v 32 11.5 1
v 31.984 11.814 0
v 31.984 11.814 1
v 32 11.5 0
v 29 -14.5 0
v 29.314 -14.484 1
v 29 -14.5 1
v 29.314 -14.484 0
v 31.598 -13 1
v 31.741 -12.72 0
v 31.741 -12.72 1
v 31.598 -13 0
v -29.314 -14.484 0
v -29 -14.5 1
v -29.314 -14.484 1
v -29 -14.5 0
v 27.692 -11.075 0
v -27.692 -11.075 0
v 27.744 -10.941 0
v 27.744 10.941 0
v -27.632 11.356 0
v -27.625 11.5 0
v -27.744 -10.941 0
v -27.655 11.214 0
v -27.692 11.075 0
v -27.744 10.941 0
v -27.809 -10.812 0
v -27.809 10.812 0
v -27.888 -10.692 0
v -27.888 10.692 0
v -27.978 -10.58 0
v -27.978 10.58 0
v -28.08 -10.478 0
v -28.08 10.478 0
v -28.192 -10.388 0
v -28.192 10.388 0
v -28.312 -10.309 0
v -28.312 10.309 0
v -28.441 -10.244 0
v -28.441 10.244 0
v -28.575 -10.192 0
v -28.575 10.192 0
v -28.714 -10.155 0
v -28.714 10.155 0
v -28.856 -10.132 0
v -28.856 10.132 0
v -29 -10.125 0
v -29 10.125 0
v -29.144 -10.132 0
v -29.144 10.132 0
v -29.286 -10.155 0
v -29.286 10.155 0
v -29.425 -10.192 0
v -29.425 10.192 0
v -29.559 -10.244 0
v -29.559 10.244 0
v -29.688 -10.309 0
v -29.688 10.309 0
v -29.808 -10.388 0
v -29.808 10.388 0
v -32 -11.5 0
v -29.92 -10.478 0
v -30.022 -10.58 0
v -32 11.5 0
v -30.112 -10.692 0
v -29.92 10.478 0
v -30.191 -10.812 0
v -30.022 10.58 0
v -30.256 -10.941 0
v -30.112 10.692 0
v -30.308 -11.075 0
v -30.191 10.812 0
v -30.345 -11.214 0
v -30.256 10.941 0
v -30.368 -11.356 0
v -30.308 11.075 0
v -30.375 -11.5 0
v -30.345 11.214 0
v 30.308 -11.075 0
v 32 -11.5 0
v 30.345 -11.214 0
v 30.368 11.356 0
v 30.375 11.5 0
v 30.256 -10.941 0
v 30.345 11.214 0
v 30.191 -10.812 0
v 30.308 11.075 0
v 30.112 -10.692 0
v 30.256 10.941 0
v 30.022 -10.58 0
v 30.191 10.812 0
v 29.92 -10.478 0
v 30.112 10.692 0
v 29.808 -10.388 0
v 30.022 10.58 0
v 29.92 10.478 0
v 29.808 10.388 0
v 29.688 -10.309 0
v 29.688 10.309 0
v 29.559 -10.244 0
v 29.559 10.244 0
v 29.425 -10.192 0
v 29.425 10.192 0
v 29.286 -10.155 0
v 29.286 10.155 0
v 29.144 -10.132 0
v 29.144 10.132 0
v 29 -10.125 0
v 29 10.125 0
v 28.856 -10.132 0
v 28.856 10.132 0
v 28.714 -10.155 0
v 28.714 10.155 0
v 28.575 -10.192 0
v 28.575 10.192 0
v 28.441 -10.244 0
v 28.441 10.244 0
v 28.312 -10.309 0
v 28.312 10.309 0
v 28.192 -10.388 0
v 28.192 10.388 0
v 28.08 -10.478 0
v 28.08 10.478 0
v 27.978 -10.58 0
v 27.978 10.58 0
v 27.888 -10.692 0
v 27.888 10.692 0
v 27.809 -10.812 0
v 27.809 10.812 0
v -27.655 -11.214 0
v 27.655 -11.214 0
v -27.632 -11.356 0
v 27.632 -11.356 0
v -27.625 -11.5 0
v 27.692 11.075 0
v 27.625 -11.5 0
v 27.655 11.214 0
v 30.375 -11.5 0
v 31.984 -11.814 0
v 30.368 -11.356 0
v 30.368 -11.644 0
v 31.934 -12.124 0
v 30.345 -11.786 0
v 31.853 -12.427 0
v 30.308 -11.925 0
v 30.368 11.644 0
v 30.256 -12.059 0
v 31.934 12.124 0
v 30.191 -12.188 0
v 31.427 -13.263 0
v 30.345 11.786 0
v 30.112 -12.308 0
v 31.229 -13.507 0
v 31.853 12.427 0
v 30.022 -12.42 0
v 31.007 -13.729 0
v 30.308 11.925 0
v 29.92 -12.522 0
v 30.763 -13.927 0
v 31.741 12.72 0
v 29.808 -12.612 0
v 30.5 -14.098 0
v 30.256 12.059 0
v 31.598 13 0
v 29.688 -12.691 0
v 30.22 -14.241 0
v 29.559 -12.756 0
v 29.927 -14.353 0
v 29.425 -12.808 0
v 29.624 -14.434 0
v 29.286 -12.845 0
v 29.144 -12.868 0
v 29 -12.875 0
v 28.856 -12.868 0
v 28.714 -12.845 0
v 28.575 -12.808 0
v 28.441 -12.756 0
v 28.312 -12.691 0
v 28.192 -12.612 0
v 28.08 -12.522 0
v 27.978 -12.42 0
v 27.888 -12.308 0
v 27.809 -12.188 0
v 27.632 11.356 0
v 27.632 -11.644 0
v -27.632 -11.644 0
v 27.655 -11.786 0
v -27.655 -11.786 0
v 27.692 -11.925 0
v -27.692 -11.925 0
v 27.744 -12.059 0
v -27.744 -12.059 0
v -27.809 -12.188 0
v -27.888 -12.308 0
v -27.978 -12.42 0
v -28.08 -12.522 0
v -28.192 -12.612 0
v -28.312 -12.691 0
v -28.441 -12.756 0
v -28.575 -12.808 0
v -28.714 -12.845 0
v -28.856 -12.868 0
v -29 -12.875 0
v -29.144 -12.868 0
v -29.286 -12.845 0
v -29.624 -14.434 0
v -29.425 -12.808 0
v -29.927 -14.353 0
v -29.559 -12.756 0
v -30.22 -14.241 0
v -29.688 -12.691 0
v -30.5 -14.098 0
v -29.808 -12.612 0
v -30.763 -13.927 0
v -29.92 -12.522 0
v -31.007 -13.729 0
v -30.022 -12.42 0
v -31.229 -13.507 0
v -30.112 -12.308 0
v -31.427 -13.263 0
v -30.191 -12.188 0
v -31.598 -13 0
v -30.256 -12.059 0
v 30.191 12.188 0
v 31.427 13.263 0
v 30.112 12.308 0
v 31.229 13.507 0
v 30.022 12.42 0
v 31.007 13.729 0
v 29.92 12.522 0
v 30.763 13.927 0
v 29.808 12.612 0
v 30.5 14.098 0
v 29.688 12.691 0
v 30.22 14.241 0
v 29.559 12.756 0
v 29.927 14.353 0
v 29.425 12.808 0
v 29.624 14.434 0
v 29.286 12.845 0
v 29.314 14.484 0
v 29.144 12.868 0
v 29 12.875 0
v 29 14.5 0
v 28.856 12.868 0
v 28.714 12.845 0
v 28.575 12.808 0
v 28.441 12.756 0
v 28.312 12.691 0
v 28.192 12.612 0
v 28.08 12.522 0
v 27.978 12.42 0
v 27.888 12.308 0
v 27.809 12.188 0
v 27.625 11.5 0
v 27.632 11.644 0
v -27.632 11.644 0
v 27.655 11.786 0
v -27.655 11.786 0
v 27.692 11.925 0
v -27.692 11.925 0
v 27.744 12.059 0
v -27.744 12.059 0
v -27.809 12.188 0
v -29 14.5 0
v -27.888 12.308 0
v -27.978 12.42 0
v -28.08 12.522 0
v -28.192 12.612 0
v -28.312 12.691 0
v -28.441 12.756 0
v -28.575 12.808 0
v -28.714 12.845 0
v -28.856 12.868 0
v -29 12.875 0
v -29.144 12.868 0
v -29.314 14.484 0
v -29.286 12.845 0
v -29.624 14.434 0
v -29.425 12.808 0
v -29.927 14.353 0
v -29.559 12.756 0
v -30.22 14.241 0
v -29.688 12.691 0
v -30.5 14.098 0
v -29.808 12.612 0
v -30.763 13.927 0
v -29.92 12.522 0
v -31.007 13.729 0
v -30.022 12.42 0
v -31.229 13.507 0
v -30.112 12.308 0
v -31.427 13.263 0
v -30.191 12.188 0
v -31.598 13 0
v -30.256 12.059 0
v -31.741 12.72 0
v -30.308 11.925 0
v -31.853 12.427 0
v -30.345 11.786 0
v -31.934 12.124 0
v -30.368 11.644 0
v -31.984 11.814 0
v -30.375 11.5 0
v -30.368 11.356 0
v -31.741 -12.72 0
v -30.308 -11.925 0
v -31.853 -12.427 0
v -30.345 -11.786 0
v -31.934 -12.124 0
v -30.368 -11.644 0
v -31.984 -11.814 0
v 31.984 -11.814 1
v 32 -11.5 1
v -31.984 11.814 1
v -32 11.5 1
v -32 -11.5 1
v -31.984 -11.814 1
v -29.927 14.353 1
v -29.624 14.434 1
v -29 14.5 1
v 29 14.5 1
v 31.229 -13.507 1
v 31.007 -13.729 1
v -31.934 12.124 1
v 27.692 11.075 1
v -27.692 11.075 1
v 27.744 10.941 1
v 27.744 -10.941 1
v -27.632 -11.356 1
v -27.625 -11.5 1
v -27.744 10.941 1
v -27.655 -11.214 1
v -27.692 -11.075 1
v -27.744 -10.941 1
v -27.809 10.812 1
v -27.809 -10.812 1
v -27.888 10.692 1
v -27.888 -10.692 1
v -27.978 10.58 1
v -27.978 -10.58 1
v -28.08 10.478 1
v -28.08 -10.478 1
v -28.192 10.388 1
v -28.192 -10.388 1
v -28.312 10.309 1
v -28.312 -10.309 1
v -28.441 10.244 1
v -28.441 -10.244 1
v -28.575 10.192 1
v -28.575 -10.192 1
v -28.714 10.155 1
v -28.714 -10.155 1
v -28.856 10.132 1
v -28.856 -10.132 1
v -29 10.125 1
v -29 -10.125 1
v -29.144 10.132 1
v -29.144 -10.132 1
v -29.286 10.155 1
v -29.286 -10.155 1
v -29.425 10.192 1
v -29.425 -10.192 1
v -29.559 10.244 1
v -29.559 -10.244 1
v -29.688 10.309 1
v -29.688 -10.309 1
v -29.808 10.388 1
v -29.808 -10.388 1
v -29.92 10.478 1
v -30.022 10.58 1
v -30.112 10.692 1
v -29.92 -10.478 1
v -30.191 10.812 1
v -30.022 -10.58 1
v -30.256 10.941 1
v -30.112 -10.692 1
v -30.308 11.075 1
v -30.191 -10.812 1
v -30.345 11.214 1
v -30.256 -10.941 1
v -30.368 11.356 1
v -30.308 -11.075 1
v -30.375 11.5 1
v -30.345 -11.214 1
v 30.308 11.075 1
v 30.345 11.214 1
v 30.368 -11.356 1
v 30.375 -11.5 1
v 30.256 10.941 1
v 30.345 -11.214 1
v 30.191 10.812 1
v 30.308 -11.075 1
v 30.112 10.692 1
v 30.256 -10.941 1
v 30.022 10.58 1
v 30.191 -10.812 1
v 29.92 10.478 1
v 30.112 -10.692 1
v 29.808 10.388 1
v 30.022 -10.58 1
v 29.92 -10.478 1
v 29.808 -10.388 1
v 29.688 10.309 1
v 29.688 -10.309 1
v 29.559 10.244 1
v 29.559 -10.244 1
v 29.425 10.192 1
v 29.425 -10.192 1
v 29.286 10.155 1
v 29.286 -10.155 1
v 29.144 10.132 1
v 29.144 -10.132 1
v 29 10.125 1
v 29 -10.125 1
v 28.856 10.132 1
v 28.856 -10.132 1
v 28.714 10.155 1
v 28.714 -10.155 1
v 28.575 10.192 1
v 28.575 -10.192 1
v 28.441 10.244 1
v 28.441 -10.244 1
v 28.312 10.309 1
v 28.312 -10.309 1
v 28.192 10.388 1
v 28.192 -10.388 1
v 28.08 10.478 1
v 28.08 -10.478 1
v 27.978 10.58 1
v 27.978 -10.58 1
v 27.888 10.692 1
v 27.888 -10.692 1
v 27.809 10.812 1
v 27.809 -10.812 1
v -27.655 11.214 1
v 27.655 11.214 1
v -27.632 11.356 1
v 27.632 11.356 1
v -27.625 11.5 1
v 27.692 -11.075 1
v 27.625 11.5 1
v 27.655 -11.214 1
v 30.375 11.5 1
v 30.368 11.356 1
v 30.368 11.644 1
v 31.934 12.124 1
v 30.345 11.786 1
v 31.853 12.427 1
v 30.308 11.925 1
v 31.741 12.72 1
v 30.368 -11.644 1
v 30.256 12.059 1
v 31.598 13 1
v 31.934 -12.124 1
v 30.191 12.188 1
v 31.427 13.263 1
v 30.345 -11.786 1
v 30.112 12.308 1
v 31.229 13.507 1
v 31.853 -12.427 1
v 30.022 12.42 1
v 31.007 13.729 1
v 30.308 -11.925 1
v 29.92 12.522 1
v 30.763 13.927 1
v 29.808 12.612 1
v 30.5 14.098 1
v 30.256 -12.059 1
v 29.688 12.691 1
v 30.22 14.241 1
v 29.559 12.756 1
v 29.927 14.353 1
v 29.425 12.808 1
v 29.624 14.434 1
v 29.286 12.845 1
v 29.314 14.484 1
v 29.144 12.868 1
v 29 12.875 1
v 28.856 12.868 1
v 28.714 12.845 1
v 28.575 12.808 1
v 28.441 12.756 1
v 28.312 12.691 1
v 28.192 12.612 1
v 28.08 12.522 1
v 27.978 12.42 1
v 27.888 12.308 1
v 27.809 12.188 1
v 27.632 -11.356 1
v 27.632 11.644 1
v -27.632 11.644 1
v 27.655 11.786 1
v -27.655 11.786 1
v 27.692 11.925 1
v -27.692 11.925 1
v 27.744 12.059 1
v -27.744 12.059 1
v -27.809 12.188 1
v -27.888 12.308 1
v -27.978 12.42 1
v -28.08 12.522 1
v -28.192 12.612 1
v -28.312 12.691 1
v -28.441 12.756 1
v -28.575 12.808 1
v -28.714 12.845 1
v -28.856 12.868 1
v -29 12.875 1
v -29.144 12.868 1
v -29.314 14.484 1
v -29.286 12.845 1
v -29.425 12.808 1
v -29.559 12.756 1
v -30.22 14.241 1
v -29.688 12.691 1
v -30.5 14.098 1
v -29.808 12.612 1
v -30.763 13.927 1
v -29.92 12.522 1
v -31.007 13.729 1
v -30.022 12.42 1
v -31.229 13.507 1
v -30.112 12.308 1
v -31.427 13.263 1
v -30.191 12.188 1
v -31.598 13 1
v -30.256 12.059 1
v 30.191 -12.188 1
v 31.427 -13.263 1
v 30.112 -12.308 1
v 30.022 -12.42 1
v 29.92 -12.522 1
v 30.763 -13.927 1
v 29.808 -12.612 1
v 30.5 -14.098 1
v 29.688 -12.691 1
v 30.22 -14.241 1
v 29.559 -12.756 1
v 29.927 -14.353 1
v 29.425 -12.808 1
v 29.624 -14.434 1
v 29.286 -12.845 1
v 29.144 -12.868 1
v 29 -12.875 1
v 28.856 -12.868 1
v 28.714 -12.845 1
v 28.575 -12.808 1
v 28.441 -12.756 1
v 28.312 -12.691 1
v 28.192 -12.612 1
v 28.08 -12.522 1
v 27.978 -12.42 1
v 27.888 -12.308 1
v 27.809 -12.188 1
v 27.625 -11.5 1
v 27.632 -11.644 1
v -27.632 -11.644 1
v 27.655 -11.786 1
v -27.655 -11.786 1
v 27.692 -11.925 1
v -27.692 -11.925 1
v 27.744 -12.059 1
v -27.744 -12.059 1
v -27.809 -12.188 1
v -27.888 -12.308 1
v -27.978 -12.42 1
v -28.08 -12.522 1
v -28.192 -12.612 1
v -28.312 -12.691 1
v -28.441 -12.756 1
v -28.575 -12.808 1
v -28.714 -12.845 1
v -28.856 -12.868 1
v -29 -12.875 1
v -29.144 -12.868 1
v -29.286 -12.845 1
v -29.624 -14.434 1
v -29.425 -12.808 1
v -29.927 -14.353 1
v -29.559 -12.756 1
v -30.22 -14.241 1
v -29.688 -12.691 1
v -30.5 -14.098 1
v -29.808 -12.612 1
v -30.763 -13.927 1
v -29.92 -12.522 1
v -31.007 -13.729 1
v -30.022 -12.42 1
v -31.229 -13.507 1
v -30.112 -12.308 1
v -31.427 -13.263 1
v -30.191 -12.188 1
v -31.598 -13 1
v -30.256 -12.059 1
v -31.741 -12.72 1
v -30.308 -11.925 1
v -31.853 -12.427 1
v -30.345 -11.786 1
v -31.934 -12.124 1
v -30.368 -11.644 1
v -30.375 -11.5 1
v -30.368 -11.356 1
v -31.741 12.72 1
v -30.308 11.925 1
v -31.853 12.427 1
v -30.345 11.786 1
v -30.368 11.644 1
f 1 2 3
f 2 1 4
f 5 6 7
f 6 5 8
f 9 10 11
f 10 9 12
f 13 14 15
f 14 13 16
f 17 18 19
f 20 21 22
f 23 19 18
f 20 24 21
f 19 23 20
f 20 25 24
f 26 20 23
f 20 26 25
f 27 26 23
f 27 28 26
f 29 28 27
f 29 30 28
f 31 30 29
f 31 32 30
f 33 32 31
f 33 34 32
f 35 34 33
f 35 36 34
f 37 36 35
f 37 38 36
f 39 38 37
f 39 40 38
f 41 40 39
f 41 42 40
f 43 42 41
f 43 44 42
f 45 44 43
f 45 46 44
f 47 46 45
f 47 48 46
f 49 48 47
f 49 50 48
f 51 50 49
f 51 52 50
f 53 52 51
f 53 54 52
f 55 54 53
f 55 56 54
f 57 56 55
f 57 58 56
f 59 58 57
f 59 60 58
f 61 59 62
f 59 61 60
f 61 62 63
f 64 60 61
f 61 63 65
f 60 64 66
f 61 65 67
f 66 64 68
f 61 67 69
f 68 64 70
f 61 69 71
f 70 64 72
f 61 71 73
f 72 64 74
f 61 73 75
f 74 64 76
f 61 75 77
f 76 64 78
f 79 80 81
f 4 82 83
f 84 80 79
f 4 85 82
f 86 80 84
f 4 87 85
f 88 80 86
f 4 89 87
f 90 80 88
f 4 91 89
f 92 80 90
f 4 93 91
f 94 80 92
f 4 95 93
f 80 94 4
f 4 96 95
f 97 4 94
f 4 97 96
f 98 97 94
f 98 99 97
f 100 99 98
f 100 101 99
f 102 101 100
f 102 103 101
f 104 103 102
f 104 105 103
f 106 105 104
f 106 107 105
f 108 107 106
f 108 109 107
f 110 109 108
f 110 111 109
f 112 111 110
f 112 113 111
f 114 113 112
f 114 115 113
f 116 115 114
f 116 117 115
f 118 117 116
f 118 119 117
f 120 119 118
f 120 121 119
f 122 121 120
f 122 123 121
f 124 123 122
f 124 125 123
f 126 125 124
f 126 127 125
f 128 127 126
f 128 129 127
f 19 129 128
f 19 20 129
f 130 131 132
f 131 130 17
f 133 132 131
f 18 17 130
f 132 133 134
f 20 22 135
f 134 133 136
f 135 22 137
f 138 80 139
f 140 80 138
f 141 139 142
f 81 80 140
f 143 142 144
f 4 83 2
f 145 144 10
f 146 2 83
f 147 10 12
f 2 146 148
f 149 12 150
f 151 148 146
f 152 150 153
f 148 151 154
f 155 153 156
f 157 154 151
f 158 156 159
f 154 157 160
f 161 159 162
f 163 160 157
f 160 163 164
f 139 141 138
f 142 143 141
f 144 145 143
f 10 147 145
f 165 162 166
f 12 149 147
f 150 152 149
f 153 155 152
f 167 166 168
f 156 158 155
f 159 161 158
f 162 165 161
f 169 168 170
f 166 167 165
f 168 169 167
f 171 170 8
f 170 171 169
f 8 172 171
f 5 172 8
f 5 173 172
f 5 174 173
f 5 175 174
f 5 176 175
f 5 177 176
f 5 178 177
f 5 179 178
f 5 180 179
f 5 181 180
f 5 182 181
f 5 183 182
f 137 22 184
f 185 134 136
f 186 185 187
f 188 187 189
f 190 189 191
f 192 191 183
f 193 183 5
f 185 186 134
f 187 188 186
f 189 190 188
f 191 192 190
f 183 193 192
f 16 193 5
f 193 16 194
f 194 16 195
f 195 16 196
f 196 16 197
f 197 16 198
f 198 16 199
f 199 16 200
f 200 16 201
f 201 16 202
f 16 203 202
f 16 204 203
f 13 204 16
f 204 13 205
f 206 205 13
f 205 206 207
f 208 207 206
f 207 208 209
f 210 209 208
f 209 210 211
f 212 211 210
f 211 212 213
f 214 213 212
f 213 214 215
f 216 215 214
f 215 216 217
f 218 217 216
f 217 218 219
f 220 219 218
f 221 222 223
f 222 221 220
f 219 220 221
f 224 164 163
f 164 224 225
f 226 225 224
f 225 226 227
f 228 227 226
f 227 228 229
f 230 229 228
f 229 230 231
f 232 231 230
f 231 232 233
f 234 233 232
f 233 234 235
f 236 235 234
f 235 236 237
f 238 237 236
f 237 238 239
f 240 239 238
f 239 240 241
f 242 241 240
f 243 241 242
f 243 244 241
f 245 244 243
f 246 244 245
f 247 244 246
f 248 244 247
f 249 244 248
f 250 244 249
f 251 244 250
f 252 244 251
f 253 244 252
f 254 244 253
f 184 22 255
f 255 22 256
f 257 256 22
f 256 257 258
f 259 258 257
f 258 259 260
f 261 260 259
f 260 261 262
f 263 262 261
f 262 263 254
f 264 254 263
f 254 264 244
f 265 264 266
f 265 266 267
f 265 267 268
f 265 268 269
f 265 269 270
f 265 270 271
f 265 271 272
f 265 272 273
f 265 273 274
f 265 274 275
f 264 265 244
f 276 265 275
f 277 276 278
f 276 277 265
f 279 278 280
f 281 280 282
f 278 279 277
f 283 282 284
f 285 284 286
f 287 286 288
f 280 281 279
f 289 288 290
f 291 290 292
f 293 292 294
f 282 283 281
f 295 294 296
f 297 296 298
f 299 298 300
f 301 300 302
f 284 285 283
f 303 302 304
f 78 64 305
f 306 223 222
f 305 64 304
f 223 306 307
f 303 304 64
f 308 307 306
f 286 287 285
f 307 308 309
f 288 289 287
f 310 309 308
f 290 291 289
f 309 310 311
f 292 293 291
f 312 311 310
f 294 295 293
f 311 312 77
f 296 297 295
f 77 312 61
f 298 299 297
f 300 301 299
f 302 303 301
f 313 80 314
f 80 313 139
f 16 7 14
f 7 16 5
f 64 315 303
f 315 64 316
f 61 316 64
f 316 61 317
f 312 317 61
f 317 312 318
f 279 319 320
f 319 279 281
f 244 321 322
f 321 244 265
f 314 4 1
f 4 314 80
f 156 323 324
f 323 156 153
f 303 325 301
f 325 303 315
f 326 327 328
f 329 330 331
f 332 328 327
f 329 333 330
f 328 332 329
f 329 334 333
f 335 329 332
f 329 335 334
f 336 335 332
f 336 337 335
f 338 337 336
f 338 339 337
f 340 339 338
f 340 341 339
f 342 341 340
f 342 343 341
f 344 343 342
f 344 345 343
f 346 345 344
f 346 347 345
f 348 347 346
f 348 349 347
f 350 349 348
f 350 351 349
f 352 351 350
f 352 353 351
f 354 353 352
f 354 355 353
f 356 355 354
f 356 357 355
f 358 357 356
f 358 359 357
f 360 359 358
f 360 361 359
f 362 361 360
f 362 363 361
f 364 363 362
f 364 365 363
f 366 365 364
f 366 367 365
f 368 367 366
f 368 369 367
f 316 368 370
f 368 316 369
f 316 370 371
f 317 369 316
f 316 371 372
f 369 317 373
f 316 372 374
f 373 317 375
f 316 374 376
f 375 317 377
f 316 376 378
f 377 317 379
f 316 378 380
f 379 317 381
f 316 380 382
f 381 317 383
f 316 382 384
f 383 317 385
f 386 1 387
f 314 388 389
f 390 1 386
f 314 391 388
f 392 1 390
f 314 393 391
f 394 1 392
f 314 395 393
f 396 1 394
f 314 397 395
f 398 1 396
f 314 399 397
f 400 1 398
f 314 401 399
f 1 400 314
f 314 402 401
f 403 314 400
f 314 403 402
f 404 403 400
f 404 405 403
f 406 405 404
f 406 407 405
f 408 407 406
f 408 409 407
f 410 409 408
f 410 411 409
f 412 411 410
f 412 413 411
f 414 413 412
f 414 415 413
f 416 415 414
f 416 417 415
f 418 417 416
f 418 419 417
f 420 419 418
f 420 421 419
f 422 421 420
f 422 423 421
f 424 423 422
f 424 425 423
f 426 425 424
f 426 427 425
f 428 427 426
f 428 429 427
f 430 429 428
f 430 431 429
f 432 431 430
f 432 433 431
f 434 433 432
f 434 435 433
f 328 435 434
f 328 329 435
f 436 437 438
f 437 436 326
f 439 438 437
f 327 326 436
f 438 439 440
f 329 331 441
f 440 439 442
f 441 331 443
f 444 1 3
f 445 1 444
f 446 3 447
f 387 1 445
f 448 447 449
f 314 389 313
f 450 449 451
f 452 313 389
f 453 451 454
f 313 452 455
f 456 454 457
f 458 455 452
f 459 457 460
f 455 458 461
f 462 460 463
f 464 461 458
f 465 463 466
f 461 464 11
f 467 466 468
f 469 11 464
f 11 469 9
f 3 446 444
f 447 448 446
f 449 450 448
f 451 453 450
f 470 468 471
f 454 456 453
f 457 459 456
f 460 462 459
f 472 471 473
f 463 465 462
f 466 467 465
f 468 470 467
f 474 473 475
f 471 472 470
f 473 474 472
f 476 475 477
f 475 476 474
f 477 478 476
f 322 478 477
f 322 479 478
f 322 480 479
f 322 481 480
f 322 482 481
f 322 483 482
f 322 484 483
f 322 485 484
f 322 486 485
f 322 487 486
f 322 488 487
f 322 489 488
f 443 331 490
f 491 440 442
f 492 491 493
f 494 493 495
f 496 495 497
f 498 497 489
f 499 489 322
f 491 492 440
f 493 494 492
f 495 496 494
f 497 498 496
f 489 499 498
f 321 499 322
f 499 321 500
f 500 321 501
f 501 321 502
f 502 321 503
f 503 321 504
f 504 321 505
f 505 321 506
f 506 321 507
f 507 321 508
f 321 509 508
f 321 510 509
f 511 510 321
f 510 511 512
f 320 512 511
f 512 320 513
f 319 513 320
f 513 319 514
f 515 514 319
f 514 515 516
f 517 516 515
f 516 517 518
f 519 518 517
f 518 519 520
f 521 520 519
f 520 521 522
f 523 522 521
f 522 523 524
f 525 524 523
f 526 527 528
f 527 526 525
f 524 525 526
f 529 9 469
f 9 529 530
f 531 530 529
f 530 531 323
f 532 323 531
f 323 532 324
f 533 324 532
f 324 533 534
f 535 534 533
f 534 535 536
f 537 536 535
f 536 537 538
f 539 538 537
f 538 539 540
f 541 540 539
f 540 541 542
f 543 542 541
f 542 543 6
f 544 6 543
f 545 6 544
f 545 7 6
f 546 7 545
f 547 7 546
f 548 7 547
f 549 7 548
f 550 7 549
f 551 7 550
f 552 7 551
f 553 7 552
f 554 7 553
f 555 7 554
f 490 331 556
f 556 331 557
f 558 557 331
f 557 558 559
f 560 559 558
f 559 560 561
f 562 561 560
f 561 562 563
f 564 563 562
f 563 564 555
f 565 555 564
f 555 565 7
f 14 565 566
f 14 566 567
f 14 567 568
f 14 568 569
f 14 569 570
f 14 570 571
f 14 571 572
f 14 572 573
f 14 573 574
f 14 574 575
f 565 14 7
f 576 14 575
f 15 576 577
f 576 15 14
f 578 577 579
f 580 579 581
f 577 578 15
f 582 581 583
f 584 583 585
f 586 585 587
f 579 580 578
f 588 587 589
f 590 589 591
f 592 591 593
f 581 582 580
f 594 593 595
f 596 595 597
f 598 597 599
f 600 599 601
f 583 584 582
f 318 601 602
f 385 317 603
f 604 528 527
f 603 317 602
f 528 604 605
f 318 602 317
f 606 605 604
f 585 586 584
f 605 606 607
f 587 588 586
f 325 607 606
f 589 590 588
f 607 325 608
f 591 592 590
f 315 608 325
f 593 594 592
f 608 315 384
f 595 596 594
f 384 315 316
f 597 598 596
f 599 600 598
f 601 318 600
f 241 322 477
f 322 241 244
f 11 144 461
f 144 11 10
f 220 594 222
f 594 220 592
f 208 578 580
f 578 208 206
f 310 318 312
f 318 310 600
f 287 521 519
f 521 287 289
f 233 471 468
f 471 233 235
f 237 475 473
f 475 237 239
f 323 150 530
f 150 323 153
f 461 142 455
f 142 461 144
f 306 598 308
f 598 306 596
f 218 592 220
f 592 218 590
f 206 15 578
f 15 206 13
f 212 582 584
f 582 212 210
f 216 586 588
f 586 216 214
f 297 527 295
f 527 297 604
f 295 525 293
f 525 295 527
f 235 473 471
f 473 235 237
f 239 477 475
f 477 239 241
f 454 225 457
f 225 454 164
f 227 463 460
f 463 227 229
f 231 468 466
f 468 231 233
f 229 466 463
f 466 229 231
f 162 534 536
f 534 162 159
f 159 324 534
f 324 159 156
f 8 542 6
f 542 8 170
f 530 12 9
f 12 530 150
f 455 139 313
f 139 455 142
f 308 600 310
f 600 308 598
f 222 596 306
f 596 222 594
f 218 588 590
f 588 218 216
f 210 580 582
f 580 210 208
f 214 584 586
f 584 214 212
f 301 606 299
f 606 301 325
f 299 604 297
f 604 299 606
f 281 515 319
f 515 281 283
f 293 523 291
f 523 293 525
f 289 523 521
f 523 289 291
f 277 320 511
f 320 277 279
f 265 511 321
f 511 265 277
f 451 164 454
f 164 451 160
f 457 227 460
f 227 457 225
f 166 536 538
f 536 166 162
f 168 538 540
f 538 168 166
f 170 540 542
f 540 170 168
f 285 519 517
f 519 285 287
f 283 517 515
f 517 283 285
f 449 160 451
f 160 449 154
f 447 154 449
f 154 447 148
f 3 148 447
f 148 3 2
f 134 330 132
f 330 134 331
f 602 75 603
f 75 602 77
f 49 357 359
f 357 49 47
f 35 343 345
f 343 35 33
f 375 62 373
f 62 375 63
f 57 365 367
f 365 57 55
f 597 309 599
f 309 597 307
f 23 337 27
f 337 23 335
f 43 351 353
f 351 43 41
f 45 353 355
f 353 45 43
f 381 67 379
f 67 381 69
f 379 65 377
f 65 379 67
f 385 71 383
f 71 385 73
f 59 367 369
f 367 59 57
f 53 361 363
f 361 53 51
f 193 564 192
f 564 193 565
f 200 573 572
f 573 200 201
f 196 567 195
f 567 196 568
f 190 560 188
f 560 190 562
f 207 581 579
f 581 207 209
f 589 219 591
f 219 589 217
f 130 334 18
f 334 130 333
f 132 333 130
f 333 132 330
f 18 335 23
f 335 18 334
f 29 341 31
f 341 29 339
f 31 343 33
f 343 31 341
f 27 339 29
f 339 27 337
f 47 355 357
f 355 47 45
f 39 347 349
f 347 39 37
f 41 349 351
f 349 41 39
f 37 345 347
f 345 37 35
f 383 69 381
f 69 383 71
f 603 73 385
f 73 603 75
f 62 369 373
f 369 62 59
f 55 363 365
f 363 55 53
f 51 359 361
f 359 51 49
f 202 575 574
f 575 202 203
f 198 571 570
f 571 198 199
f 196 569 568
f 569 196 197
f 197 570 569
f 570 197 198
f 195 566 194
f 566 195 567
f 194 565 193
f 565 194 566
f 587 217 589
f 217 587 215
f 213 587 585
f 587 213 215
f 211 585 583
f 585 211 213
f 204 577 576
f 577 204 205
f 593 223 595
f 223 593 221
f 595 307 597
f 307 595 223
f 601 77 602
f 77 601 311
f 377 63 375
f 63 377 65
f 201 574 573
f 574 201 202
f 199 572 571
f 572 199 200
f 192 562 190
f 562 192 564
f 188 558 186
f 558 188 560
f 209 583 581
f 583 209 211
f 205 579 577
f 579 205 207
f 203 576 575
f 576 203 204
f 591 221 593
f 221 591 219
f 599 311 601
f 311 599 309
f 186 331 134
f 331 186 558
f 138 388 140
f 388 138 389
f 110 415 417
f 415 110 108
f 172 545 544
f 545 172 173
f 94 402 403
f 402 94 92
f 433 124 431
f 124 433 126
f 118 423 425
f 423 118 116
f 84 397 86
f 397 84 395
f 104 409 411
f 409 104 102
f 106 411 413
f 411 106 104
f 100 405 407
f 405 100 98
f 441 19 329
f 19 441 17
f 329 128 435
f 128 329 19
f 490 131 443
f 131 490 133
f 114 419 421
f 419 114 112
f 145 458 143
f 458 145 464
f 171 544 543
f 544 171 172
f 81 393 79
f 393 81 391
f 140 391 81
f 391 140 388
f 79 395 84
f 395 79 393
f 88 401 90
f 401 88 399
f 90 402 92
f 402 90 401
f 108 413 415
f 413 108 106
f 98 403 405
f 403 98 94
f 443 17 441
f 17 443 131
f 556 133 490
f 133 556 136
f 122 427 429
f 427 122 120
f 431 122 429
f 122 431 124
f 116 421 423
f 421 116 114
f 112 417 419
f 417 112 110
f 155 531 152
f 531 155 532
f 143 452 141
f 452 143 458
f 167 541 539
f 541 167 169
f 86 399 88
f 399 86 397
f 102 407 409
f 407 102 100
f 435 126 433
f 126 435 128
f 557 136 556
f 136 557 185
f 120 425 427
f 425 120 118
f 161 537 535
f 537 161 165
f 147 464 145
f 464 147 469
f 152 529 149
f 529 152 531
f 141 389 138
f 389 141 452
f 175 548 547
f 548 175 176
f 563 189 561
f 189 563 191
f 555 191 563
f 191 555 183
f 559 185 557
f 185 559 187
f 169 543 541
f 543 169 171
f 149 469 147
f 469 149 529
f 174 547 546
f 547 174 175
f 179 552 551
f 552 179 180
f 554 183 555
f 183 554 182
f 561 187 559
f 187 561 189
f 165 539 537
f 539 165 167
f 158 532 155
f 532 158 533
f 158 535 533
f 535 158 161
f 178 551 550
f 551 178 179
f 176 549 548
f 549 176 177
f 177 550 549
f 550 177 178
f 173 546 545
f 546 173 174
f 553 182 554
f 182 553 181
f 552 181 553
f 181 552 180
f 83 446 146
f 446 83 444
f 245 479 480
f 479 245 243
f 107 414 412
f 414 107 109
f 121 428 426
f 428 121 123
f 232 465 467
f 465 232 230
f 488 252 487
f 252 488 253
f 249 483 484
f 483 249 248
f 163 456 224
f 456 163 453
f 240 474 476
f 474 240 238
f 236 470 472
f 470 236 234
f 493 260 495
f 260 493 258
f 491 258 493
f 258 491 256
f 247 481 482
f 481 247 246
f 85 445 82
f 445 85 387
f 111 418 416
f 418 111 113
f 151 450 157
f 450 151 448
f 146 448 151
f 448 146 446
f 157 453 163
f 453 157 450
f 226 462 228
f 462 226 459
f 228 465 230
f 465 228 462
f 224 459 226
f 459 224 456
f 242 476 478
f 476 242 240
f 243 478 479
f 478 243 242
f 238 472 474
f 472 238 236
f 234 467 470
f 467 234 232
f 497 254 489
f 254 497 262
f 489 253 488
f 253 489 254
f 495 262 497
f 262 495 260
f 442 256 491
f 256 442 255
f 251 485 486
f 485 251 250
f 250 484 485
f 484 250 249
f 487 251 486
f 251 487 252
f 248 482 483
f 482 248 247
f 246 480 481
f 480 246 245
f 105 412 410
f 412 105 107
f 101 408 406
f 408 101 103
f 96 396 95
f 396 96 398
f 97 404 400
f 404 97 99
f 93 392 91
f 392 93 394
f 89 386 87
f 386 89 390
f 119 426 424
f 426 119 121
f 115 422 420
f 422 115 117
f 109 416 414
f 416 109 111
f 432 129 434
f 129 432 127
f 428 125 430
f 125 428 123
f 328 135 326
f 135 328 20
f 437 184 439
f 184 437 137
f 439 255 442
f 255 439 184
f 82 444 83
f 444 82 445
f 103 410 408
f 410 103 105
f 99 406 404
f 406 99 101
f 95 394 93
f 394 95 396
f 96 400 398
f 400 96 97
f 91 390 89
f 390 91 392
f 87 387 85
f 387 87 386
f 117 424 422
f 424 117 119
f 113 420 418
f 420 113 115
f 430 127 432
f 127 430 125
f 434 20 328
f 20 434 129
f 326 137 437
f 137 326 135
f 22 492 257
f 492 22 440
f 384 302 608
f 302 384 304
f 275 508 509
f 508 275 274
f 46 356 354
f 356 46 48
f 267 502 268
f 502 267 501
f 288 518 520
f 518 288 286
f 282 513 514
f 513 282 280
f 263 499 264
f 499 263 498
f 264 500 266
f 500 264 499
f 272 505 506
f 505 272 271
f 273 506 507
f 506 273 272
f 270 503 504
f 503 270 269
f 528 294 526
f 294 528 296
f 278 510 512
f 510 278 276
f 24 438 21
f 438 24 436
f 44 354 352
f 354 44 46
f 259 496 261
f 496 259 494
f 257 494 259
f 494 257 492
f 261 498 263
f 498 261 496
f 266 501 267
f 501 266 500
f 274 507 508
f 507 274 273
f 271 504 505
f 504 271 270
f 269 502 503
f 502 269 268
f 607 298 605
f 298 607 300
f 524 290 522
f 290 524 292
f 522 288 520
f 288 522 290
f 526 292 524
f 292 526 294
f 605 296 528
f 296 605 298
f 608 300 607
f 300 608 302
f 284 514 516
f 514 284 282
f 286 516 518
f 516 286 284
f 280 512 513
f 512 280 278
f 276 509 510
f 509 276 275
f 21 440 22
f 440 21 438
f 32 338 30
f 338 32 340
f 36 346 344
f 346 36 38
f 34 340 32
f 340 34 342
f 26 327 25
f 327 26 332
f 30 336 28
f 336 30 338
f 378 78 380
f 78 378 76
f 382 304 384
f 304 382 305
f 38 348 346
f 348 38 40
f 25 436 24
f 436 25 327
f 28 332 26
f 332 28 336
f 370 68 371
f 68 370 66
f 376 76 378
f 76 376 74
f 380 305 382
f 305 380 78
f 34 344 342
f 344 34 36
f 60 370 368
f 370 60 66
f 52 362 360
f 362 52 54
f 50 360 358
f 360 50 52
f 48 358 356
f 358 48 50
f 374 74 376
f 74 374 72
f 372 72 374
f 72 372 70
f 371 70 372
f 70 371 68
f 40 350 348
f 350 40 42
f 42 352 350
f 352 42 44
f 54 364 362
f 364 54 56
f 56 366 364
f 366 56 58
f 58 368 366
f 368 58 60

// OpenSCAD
// file: pi-zero/files/PiZero_1.2.scad
//  Pi Zero model for checking other models
//  0,0,0 is centre of PCB, bottom face
//  This model is for V1.2

// PCB size variables
PiSizeX = 65;
PiSizeY = 30;
PiSizeZ = 1.5;
PiCornerRad = 3.0;
PiHoleEdge = 3.5;       // Mount holes are 3.5mm from each edge
PiHoleDia = 2.75;
PiHoleRad = PiHoleDia / 2;
PiHoleClearRad = 3.0;    // Mount holes have 6 Dia clear on PCB

//  Component connector centrelines from Pi centreline
PiSDX = -24.5;          // SD holder
PiSDY = 1.9;
PiUSBX = 8.9;           // Data (USB)
PiUSBY = -13;
PiOTGX = 21.5;          // Power (OTG)
PiOTGY = -13;
PiHDMIX = -20.1;        // HDMI
PiHDMIY = -11.4;

//  Component connector sizes
PiSDsizeX = 11.5;
PiSDsizeY = 12.0;
PiSDsizeZ = 1.3;
PiUSBsizeX = 7.5;
PiUSBsizeY = 5.0;
PiUSBsizeZ = 2.5;
PiHDMIsizeX = 11.25;
PiHDMIsizeY = 7.25;
PiHDMIsizeZ = 3.3;

//  SOC centrelines and sizes
PiSOCX = -2.5;
PiSOCY = -2;
PiSOCsizeX = 12;
PiSOCsizeY = 12;
PiSOCsizeZ = 1.2;

//  PP pads (on underside) centres from Pi centreline
// all Pi <padname> X, Y, D & C
// PP1 +5V
PiPP1X = 21.0;
PiPP1Y = -8.7;
PiPP1D = 2.25;
PiPP1C = "Red";
// PP6 GND
PiPP6X = 21.25;
PiPP6Y = -11.1;
PiPP6D = 2.25;
PiPP6C = "Black";
// PP22 Data +
PiPP22X = 9.4;
PiPP22Y = -13;
PiPP22D = 1.75;
PiPP22C = "Violet";
// PP23 Data -
PiPP23X = 7.4;
PiPP23Y = -13;
PiPP23D = 1.75;
PiPP23C = "Salmon";

//  Mount hole dims from centre lines
PiHoleX = PiSizeX/2 - PiHoleEdge;
PiHoleY = PiSizeY/2 - PiHoleEdge;

//
// Modules used for Pi model
//
module PiDrawPad(Xpos,Ypos,Di,Col)    // Places a spot at test pad point, coloured to show pad function
{
translate([Xpos,Ypos,PiSizeZ/4])
    color(Col)
    cylinder(h=PiSizeZ*2/3,d=Di,center=true);
}

module PiPCBhole(Xpos,Ypos)   // Cuts a hole through PCB
{
translate([Xpos,Ypos,PiSizeZ/2])
    cylinder(h=2*PiSizeZ,d=PiHoleDia,center=true);
}

module PiComponent(Xpos,Ypos,Xsize,Ysize,Zsize,Col)    // Makes a block to represent a component on the upper face
{
translate([Xpos,Ypos,PiSizeZ + Zsize/2]) color(Col)
    cube([Xsize,Ysize,Zsize], center=true);
}

//
//  This is the main routine and can be called from outside
//
module PiZeroBody() // Models the Pi.
{
color("Green")
difference()
    {
    hull()  // PCB shape
        {
        translate([-PiHoleX,-PiHoleY,PiSizeZ/2])
            cylinder(r=PiCornerRad,h=PiSizeZ,center=true);
        translate([PiHoleX,-PiHoleY,PiSizeZ/2])
            cylinder(r=PiCornerRad,h=PiSizeZ,center=true);
        translate([PiHoleX,PiHoleY,PiSizeZ/2])
            cylinder(r=PiCornerRad,h=PiSizeZ,center=true);
        translate([-PiHoleX,PiHoleY,PiSizeZ/2])
            cylinder(r=PiCornerRad,h=PiSizeZ,center=true);
        }

    // Corner screw holes
    PiPCBhole(-PiHoleX,-PiHoleY);
    PiPCBhole(PiHoleX,-PiHoleY);
    PiPCBhole(PiHoleX,PiHoleY);
    PiPCBhole(-PiHoleX,PiHoleY);
    // GPIO holes
    for (Xcount = [-10:10], Ycount = [-1:2:1])
        translate([Xcount*2.54,PiHoleY+Ycount*1.27,PiSizeZ/2])
            cylinder(h=2*PiSizeZ,d=1.2,center=true);
    // The other 4 holes (loop values cheat for simplicity)
    for (Xcount = [9:10], Ycount = [-5:2:-3])
        translate([Xcount*2.54,PiHoleY+Ycount*1.27,PiSizeZ/2])
            cylinder(h=2*PiSizeZ,d=1.2,center=true);
    }

PiComponent(PiSOCX,PiSOCY,PiSOCsizeX,PiSOCsizeY,PiSOCsizeZ,"Black");   // Processor
PiComponent(PiSDX,PiSDY,PiSDsizeX,PiSOCsizeY,PiSOCsizeZ,"Silver");   // SD card
PiComponent(PiHDMIX,PiHDMIY,PiHDMIsizeX,PiHDMIsizeY,PiHDMIsizeZ,"Silver");   // HDMI
PiComponent(PiUSBX,PiUSBY,PiUSBsizeX,PiUSBsizeY,PiUSBsizeZ,"Silver");   // USB
PiComponent(PiOTGX,PiOTGY,PiUSBsizeX,PiUSBsizeY,PiUSBsizeZ,"Silver");   // Power
}

//
//  This routine can be called separately from outside
//
module PiZeroTestPads()   //Show test pads for debugging connectors
{
    PiDrawPad(PiPP1X,PiPP1Y,PiPP1D,PiPP1C);
    PiDrawPad(PiPP6X,PiPP6Y,PiPP6D,PiPP6C);
    PiDrawPad(PiPP22X,PiPP22Y,PiPP22D,PiPP22C);
    PiDrawPad(PiPP23X,PiPP23Y,PiPP23D,PiPP23C);
}

/*
End of Pi model routines
Program from here
*/

// Input variables
//ShowPiZero = true;
ShowPiZero = false;
//ShowTestPads = true;
ShowTestPads = false;

// Overall definition
$fn=60;


// Model the Zero if required
if(ShowPiZero) PiZeroBody();

// Model the test pads if required
if (ShowTestPads) PiZeroTestPads();
// file: common.scad
// create a 4-40 hole for mounting
module 4_40_hole(len=20, cen=true){
    // should be like 2.8448 mm
    cylinder(len,d=3,center=cen);
}


module bottomHoles(x=0,y=0,z=0){
    center = true;
    height = 15;
    hole = 2.15; // 4.1 mm diameter
    hdist = 6; // 6 mm center to center distance
    vdist = 18; // 18 mm center to center distance
    translate([x-6,y,z]){
        cylinder(height,hole,hole, center);
        translate([hdist,0,0]) cylinder(height,hole,hole, center);
        translate([2*hdist,0,0]) cylinder(height,hole,hole, center);
    }
}

// the 5 hold cross for a servo horn
module hornHoles(x=0, y=0, z=0, angle=0){
    height = 15;
    hole = 2.15; // 4.1 mm diameter
    dist = 6; // 6 mm center to center distance
    rotate([0,0,angle]){
        center = true;
        translate([x-6,y,z]){
            cylinder(height, 2, 2, center);
            translate([dist,0,0]){
                cylinder(height, 2, 2, center);
                translate([dist,0,0]){
                    cylinder(height, 2, 2, center);
                }
            }
            translate([dist, dist, 0]) {
                cylinder(height, 2, 2, center);
            }
            translate([dist, -dist, 0]) {
                cylinder(height, 2, 2, center);
            }
        }
    }
}

// a 3D triangular shape, point is at 0,0,0
module strut(length, width, height){
    points2 = [ [10,10,0],[10,-10,0],[-10,-10,0],[-10,10,0], // the four points at base
           [0,0,10]  ];
    points = [
        [0,0,0],
        [width,0,0],
        [width,length,0],
        [0,length,0],
        [0,length,height],
        [width,length,height]
    ];
    faces=[[0,1,2,3],[5,4,3,2],[0,4,5,1],[0,3,4],[5,2,1]];
    polyhedron(points, faces);
}
// main file
use <common.scad>
//$fn=45;

include <pi-zero/files/PiZero_1.2.scad>;


module face(){
    // PiSizeZ = 1.5;
    PiSizeZ = 1;
    color("DarkSlateGray")
    difference(){
        hull(){
            translate([-PiHoleX,-PiHoleY,PiSizeZ/2])
                cylinder(r=PiCornerRad,h=PiSizeZ,center=true);
            translate([PiHoleX,-PiHoleY,PiSizeZ/2])
                cylinder(r=PiCornerRad,h=PiSizeZ,center=true);
            translate([PiHoleX,PiHoleY,PiSizeZ/2])
                cylinder(r=PiCornerRad,h=PiSizeZ,center=true);
            translate([-PiHoleX,PiHoleY,PiSizeZ/2])
                cylinder(r=PiCornerRad,h=PiSizeZ,center=true);
        }
        // Corner screw holes
        PiPCBhole(-PiHoleX,-PiHoleY);
        PiPCBhole(PiHoleX,-PiHoleY);
        PiPCBhole(PiHoleX,PiHoleY);
        PiPCBhole(-PiHoleX,PiHoleY);
    }
}

face();
